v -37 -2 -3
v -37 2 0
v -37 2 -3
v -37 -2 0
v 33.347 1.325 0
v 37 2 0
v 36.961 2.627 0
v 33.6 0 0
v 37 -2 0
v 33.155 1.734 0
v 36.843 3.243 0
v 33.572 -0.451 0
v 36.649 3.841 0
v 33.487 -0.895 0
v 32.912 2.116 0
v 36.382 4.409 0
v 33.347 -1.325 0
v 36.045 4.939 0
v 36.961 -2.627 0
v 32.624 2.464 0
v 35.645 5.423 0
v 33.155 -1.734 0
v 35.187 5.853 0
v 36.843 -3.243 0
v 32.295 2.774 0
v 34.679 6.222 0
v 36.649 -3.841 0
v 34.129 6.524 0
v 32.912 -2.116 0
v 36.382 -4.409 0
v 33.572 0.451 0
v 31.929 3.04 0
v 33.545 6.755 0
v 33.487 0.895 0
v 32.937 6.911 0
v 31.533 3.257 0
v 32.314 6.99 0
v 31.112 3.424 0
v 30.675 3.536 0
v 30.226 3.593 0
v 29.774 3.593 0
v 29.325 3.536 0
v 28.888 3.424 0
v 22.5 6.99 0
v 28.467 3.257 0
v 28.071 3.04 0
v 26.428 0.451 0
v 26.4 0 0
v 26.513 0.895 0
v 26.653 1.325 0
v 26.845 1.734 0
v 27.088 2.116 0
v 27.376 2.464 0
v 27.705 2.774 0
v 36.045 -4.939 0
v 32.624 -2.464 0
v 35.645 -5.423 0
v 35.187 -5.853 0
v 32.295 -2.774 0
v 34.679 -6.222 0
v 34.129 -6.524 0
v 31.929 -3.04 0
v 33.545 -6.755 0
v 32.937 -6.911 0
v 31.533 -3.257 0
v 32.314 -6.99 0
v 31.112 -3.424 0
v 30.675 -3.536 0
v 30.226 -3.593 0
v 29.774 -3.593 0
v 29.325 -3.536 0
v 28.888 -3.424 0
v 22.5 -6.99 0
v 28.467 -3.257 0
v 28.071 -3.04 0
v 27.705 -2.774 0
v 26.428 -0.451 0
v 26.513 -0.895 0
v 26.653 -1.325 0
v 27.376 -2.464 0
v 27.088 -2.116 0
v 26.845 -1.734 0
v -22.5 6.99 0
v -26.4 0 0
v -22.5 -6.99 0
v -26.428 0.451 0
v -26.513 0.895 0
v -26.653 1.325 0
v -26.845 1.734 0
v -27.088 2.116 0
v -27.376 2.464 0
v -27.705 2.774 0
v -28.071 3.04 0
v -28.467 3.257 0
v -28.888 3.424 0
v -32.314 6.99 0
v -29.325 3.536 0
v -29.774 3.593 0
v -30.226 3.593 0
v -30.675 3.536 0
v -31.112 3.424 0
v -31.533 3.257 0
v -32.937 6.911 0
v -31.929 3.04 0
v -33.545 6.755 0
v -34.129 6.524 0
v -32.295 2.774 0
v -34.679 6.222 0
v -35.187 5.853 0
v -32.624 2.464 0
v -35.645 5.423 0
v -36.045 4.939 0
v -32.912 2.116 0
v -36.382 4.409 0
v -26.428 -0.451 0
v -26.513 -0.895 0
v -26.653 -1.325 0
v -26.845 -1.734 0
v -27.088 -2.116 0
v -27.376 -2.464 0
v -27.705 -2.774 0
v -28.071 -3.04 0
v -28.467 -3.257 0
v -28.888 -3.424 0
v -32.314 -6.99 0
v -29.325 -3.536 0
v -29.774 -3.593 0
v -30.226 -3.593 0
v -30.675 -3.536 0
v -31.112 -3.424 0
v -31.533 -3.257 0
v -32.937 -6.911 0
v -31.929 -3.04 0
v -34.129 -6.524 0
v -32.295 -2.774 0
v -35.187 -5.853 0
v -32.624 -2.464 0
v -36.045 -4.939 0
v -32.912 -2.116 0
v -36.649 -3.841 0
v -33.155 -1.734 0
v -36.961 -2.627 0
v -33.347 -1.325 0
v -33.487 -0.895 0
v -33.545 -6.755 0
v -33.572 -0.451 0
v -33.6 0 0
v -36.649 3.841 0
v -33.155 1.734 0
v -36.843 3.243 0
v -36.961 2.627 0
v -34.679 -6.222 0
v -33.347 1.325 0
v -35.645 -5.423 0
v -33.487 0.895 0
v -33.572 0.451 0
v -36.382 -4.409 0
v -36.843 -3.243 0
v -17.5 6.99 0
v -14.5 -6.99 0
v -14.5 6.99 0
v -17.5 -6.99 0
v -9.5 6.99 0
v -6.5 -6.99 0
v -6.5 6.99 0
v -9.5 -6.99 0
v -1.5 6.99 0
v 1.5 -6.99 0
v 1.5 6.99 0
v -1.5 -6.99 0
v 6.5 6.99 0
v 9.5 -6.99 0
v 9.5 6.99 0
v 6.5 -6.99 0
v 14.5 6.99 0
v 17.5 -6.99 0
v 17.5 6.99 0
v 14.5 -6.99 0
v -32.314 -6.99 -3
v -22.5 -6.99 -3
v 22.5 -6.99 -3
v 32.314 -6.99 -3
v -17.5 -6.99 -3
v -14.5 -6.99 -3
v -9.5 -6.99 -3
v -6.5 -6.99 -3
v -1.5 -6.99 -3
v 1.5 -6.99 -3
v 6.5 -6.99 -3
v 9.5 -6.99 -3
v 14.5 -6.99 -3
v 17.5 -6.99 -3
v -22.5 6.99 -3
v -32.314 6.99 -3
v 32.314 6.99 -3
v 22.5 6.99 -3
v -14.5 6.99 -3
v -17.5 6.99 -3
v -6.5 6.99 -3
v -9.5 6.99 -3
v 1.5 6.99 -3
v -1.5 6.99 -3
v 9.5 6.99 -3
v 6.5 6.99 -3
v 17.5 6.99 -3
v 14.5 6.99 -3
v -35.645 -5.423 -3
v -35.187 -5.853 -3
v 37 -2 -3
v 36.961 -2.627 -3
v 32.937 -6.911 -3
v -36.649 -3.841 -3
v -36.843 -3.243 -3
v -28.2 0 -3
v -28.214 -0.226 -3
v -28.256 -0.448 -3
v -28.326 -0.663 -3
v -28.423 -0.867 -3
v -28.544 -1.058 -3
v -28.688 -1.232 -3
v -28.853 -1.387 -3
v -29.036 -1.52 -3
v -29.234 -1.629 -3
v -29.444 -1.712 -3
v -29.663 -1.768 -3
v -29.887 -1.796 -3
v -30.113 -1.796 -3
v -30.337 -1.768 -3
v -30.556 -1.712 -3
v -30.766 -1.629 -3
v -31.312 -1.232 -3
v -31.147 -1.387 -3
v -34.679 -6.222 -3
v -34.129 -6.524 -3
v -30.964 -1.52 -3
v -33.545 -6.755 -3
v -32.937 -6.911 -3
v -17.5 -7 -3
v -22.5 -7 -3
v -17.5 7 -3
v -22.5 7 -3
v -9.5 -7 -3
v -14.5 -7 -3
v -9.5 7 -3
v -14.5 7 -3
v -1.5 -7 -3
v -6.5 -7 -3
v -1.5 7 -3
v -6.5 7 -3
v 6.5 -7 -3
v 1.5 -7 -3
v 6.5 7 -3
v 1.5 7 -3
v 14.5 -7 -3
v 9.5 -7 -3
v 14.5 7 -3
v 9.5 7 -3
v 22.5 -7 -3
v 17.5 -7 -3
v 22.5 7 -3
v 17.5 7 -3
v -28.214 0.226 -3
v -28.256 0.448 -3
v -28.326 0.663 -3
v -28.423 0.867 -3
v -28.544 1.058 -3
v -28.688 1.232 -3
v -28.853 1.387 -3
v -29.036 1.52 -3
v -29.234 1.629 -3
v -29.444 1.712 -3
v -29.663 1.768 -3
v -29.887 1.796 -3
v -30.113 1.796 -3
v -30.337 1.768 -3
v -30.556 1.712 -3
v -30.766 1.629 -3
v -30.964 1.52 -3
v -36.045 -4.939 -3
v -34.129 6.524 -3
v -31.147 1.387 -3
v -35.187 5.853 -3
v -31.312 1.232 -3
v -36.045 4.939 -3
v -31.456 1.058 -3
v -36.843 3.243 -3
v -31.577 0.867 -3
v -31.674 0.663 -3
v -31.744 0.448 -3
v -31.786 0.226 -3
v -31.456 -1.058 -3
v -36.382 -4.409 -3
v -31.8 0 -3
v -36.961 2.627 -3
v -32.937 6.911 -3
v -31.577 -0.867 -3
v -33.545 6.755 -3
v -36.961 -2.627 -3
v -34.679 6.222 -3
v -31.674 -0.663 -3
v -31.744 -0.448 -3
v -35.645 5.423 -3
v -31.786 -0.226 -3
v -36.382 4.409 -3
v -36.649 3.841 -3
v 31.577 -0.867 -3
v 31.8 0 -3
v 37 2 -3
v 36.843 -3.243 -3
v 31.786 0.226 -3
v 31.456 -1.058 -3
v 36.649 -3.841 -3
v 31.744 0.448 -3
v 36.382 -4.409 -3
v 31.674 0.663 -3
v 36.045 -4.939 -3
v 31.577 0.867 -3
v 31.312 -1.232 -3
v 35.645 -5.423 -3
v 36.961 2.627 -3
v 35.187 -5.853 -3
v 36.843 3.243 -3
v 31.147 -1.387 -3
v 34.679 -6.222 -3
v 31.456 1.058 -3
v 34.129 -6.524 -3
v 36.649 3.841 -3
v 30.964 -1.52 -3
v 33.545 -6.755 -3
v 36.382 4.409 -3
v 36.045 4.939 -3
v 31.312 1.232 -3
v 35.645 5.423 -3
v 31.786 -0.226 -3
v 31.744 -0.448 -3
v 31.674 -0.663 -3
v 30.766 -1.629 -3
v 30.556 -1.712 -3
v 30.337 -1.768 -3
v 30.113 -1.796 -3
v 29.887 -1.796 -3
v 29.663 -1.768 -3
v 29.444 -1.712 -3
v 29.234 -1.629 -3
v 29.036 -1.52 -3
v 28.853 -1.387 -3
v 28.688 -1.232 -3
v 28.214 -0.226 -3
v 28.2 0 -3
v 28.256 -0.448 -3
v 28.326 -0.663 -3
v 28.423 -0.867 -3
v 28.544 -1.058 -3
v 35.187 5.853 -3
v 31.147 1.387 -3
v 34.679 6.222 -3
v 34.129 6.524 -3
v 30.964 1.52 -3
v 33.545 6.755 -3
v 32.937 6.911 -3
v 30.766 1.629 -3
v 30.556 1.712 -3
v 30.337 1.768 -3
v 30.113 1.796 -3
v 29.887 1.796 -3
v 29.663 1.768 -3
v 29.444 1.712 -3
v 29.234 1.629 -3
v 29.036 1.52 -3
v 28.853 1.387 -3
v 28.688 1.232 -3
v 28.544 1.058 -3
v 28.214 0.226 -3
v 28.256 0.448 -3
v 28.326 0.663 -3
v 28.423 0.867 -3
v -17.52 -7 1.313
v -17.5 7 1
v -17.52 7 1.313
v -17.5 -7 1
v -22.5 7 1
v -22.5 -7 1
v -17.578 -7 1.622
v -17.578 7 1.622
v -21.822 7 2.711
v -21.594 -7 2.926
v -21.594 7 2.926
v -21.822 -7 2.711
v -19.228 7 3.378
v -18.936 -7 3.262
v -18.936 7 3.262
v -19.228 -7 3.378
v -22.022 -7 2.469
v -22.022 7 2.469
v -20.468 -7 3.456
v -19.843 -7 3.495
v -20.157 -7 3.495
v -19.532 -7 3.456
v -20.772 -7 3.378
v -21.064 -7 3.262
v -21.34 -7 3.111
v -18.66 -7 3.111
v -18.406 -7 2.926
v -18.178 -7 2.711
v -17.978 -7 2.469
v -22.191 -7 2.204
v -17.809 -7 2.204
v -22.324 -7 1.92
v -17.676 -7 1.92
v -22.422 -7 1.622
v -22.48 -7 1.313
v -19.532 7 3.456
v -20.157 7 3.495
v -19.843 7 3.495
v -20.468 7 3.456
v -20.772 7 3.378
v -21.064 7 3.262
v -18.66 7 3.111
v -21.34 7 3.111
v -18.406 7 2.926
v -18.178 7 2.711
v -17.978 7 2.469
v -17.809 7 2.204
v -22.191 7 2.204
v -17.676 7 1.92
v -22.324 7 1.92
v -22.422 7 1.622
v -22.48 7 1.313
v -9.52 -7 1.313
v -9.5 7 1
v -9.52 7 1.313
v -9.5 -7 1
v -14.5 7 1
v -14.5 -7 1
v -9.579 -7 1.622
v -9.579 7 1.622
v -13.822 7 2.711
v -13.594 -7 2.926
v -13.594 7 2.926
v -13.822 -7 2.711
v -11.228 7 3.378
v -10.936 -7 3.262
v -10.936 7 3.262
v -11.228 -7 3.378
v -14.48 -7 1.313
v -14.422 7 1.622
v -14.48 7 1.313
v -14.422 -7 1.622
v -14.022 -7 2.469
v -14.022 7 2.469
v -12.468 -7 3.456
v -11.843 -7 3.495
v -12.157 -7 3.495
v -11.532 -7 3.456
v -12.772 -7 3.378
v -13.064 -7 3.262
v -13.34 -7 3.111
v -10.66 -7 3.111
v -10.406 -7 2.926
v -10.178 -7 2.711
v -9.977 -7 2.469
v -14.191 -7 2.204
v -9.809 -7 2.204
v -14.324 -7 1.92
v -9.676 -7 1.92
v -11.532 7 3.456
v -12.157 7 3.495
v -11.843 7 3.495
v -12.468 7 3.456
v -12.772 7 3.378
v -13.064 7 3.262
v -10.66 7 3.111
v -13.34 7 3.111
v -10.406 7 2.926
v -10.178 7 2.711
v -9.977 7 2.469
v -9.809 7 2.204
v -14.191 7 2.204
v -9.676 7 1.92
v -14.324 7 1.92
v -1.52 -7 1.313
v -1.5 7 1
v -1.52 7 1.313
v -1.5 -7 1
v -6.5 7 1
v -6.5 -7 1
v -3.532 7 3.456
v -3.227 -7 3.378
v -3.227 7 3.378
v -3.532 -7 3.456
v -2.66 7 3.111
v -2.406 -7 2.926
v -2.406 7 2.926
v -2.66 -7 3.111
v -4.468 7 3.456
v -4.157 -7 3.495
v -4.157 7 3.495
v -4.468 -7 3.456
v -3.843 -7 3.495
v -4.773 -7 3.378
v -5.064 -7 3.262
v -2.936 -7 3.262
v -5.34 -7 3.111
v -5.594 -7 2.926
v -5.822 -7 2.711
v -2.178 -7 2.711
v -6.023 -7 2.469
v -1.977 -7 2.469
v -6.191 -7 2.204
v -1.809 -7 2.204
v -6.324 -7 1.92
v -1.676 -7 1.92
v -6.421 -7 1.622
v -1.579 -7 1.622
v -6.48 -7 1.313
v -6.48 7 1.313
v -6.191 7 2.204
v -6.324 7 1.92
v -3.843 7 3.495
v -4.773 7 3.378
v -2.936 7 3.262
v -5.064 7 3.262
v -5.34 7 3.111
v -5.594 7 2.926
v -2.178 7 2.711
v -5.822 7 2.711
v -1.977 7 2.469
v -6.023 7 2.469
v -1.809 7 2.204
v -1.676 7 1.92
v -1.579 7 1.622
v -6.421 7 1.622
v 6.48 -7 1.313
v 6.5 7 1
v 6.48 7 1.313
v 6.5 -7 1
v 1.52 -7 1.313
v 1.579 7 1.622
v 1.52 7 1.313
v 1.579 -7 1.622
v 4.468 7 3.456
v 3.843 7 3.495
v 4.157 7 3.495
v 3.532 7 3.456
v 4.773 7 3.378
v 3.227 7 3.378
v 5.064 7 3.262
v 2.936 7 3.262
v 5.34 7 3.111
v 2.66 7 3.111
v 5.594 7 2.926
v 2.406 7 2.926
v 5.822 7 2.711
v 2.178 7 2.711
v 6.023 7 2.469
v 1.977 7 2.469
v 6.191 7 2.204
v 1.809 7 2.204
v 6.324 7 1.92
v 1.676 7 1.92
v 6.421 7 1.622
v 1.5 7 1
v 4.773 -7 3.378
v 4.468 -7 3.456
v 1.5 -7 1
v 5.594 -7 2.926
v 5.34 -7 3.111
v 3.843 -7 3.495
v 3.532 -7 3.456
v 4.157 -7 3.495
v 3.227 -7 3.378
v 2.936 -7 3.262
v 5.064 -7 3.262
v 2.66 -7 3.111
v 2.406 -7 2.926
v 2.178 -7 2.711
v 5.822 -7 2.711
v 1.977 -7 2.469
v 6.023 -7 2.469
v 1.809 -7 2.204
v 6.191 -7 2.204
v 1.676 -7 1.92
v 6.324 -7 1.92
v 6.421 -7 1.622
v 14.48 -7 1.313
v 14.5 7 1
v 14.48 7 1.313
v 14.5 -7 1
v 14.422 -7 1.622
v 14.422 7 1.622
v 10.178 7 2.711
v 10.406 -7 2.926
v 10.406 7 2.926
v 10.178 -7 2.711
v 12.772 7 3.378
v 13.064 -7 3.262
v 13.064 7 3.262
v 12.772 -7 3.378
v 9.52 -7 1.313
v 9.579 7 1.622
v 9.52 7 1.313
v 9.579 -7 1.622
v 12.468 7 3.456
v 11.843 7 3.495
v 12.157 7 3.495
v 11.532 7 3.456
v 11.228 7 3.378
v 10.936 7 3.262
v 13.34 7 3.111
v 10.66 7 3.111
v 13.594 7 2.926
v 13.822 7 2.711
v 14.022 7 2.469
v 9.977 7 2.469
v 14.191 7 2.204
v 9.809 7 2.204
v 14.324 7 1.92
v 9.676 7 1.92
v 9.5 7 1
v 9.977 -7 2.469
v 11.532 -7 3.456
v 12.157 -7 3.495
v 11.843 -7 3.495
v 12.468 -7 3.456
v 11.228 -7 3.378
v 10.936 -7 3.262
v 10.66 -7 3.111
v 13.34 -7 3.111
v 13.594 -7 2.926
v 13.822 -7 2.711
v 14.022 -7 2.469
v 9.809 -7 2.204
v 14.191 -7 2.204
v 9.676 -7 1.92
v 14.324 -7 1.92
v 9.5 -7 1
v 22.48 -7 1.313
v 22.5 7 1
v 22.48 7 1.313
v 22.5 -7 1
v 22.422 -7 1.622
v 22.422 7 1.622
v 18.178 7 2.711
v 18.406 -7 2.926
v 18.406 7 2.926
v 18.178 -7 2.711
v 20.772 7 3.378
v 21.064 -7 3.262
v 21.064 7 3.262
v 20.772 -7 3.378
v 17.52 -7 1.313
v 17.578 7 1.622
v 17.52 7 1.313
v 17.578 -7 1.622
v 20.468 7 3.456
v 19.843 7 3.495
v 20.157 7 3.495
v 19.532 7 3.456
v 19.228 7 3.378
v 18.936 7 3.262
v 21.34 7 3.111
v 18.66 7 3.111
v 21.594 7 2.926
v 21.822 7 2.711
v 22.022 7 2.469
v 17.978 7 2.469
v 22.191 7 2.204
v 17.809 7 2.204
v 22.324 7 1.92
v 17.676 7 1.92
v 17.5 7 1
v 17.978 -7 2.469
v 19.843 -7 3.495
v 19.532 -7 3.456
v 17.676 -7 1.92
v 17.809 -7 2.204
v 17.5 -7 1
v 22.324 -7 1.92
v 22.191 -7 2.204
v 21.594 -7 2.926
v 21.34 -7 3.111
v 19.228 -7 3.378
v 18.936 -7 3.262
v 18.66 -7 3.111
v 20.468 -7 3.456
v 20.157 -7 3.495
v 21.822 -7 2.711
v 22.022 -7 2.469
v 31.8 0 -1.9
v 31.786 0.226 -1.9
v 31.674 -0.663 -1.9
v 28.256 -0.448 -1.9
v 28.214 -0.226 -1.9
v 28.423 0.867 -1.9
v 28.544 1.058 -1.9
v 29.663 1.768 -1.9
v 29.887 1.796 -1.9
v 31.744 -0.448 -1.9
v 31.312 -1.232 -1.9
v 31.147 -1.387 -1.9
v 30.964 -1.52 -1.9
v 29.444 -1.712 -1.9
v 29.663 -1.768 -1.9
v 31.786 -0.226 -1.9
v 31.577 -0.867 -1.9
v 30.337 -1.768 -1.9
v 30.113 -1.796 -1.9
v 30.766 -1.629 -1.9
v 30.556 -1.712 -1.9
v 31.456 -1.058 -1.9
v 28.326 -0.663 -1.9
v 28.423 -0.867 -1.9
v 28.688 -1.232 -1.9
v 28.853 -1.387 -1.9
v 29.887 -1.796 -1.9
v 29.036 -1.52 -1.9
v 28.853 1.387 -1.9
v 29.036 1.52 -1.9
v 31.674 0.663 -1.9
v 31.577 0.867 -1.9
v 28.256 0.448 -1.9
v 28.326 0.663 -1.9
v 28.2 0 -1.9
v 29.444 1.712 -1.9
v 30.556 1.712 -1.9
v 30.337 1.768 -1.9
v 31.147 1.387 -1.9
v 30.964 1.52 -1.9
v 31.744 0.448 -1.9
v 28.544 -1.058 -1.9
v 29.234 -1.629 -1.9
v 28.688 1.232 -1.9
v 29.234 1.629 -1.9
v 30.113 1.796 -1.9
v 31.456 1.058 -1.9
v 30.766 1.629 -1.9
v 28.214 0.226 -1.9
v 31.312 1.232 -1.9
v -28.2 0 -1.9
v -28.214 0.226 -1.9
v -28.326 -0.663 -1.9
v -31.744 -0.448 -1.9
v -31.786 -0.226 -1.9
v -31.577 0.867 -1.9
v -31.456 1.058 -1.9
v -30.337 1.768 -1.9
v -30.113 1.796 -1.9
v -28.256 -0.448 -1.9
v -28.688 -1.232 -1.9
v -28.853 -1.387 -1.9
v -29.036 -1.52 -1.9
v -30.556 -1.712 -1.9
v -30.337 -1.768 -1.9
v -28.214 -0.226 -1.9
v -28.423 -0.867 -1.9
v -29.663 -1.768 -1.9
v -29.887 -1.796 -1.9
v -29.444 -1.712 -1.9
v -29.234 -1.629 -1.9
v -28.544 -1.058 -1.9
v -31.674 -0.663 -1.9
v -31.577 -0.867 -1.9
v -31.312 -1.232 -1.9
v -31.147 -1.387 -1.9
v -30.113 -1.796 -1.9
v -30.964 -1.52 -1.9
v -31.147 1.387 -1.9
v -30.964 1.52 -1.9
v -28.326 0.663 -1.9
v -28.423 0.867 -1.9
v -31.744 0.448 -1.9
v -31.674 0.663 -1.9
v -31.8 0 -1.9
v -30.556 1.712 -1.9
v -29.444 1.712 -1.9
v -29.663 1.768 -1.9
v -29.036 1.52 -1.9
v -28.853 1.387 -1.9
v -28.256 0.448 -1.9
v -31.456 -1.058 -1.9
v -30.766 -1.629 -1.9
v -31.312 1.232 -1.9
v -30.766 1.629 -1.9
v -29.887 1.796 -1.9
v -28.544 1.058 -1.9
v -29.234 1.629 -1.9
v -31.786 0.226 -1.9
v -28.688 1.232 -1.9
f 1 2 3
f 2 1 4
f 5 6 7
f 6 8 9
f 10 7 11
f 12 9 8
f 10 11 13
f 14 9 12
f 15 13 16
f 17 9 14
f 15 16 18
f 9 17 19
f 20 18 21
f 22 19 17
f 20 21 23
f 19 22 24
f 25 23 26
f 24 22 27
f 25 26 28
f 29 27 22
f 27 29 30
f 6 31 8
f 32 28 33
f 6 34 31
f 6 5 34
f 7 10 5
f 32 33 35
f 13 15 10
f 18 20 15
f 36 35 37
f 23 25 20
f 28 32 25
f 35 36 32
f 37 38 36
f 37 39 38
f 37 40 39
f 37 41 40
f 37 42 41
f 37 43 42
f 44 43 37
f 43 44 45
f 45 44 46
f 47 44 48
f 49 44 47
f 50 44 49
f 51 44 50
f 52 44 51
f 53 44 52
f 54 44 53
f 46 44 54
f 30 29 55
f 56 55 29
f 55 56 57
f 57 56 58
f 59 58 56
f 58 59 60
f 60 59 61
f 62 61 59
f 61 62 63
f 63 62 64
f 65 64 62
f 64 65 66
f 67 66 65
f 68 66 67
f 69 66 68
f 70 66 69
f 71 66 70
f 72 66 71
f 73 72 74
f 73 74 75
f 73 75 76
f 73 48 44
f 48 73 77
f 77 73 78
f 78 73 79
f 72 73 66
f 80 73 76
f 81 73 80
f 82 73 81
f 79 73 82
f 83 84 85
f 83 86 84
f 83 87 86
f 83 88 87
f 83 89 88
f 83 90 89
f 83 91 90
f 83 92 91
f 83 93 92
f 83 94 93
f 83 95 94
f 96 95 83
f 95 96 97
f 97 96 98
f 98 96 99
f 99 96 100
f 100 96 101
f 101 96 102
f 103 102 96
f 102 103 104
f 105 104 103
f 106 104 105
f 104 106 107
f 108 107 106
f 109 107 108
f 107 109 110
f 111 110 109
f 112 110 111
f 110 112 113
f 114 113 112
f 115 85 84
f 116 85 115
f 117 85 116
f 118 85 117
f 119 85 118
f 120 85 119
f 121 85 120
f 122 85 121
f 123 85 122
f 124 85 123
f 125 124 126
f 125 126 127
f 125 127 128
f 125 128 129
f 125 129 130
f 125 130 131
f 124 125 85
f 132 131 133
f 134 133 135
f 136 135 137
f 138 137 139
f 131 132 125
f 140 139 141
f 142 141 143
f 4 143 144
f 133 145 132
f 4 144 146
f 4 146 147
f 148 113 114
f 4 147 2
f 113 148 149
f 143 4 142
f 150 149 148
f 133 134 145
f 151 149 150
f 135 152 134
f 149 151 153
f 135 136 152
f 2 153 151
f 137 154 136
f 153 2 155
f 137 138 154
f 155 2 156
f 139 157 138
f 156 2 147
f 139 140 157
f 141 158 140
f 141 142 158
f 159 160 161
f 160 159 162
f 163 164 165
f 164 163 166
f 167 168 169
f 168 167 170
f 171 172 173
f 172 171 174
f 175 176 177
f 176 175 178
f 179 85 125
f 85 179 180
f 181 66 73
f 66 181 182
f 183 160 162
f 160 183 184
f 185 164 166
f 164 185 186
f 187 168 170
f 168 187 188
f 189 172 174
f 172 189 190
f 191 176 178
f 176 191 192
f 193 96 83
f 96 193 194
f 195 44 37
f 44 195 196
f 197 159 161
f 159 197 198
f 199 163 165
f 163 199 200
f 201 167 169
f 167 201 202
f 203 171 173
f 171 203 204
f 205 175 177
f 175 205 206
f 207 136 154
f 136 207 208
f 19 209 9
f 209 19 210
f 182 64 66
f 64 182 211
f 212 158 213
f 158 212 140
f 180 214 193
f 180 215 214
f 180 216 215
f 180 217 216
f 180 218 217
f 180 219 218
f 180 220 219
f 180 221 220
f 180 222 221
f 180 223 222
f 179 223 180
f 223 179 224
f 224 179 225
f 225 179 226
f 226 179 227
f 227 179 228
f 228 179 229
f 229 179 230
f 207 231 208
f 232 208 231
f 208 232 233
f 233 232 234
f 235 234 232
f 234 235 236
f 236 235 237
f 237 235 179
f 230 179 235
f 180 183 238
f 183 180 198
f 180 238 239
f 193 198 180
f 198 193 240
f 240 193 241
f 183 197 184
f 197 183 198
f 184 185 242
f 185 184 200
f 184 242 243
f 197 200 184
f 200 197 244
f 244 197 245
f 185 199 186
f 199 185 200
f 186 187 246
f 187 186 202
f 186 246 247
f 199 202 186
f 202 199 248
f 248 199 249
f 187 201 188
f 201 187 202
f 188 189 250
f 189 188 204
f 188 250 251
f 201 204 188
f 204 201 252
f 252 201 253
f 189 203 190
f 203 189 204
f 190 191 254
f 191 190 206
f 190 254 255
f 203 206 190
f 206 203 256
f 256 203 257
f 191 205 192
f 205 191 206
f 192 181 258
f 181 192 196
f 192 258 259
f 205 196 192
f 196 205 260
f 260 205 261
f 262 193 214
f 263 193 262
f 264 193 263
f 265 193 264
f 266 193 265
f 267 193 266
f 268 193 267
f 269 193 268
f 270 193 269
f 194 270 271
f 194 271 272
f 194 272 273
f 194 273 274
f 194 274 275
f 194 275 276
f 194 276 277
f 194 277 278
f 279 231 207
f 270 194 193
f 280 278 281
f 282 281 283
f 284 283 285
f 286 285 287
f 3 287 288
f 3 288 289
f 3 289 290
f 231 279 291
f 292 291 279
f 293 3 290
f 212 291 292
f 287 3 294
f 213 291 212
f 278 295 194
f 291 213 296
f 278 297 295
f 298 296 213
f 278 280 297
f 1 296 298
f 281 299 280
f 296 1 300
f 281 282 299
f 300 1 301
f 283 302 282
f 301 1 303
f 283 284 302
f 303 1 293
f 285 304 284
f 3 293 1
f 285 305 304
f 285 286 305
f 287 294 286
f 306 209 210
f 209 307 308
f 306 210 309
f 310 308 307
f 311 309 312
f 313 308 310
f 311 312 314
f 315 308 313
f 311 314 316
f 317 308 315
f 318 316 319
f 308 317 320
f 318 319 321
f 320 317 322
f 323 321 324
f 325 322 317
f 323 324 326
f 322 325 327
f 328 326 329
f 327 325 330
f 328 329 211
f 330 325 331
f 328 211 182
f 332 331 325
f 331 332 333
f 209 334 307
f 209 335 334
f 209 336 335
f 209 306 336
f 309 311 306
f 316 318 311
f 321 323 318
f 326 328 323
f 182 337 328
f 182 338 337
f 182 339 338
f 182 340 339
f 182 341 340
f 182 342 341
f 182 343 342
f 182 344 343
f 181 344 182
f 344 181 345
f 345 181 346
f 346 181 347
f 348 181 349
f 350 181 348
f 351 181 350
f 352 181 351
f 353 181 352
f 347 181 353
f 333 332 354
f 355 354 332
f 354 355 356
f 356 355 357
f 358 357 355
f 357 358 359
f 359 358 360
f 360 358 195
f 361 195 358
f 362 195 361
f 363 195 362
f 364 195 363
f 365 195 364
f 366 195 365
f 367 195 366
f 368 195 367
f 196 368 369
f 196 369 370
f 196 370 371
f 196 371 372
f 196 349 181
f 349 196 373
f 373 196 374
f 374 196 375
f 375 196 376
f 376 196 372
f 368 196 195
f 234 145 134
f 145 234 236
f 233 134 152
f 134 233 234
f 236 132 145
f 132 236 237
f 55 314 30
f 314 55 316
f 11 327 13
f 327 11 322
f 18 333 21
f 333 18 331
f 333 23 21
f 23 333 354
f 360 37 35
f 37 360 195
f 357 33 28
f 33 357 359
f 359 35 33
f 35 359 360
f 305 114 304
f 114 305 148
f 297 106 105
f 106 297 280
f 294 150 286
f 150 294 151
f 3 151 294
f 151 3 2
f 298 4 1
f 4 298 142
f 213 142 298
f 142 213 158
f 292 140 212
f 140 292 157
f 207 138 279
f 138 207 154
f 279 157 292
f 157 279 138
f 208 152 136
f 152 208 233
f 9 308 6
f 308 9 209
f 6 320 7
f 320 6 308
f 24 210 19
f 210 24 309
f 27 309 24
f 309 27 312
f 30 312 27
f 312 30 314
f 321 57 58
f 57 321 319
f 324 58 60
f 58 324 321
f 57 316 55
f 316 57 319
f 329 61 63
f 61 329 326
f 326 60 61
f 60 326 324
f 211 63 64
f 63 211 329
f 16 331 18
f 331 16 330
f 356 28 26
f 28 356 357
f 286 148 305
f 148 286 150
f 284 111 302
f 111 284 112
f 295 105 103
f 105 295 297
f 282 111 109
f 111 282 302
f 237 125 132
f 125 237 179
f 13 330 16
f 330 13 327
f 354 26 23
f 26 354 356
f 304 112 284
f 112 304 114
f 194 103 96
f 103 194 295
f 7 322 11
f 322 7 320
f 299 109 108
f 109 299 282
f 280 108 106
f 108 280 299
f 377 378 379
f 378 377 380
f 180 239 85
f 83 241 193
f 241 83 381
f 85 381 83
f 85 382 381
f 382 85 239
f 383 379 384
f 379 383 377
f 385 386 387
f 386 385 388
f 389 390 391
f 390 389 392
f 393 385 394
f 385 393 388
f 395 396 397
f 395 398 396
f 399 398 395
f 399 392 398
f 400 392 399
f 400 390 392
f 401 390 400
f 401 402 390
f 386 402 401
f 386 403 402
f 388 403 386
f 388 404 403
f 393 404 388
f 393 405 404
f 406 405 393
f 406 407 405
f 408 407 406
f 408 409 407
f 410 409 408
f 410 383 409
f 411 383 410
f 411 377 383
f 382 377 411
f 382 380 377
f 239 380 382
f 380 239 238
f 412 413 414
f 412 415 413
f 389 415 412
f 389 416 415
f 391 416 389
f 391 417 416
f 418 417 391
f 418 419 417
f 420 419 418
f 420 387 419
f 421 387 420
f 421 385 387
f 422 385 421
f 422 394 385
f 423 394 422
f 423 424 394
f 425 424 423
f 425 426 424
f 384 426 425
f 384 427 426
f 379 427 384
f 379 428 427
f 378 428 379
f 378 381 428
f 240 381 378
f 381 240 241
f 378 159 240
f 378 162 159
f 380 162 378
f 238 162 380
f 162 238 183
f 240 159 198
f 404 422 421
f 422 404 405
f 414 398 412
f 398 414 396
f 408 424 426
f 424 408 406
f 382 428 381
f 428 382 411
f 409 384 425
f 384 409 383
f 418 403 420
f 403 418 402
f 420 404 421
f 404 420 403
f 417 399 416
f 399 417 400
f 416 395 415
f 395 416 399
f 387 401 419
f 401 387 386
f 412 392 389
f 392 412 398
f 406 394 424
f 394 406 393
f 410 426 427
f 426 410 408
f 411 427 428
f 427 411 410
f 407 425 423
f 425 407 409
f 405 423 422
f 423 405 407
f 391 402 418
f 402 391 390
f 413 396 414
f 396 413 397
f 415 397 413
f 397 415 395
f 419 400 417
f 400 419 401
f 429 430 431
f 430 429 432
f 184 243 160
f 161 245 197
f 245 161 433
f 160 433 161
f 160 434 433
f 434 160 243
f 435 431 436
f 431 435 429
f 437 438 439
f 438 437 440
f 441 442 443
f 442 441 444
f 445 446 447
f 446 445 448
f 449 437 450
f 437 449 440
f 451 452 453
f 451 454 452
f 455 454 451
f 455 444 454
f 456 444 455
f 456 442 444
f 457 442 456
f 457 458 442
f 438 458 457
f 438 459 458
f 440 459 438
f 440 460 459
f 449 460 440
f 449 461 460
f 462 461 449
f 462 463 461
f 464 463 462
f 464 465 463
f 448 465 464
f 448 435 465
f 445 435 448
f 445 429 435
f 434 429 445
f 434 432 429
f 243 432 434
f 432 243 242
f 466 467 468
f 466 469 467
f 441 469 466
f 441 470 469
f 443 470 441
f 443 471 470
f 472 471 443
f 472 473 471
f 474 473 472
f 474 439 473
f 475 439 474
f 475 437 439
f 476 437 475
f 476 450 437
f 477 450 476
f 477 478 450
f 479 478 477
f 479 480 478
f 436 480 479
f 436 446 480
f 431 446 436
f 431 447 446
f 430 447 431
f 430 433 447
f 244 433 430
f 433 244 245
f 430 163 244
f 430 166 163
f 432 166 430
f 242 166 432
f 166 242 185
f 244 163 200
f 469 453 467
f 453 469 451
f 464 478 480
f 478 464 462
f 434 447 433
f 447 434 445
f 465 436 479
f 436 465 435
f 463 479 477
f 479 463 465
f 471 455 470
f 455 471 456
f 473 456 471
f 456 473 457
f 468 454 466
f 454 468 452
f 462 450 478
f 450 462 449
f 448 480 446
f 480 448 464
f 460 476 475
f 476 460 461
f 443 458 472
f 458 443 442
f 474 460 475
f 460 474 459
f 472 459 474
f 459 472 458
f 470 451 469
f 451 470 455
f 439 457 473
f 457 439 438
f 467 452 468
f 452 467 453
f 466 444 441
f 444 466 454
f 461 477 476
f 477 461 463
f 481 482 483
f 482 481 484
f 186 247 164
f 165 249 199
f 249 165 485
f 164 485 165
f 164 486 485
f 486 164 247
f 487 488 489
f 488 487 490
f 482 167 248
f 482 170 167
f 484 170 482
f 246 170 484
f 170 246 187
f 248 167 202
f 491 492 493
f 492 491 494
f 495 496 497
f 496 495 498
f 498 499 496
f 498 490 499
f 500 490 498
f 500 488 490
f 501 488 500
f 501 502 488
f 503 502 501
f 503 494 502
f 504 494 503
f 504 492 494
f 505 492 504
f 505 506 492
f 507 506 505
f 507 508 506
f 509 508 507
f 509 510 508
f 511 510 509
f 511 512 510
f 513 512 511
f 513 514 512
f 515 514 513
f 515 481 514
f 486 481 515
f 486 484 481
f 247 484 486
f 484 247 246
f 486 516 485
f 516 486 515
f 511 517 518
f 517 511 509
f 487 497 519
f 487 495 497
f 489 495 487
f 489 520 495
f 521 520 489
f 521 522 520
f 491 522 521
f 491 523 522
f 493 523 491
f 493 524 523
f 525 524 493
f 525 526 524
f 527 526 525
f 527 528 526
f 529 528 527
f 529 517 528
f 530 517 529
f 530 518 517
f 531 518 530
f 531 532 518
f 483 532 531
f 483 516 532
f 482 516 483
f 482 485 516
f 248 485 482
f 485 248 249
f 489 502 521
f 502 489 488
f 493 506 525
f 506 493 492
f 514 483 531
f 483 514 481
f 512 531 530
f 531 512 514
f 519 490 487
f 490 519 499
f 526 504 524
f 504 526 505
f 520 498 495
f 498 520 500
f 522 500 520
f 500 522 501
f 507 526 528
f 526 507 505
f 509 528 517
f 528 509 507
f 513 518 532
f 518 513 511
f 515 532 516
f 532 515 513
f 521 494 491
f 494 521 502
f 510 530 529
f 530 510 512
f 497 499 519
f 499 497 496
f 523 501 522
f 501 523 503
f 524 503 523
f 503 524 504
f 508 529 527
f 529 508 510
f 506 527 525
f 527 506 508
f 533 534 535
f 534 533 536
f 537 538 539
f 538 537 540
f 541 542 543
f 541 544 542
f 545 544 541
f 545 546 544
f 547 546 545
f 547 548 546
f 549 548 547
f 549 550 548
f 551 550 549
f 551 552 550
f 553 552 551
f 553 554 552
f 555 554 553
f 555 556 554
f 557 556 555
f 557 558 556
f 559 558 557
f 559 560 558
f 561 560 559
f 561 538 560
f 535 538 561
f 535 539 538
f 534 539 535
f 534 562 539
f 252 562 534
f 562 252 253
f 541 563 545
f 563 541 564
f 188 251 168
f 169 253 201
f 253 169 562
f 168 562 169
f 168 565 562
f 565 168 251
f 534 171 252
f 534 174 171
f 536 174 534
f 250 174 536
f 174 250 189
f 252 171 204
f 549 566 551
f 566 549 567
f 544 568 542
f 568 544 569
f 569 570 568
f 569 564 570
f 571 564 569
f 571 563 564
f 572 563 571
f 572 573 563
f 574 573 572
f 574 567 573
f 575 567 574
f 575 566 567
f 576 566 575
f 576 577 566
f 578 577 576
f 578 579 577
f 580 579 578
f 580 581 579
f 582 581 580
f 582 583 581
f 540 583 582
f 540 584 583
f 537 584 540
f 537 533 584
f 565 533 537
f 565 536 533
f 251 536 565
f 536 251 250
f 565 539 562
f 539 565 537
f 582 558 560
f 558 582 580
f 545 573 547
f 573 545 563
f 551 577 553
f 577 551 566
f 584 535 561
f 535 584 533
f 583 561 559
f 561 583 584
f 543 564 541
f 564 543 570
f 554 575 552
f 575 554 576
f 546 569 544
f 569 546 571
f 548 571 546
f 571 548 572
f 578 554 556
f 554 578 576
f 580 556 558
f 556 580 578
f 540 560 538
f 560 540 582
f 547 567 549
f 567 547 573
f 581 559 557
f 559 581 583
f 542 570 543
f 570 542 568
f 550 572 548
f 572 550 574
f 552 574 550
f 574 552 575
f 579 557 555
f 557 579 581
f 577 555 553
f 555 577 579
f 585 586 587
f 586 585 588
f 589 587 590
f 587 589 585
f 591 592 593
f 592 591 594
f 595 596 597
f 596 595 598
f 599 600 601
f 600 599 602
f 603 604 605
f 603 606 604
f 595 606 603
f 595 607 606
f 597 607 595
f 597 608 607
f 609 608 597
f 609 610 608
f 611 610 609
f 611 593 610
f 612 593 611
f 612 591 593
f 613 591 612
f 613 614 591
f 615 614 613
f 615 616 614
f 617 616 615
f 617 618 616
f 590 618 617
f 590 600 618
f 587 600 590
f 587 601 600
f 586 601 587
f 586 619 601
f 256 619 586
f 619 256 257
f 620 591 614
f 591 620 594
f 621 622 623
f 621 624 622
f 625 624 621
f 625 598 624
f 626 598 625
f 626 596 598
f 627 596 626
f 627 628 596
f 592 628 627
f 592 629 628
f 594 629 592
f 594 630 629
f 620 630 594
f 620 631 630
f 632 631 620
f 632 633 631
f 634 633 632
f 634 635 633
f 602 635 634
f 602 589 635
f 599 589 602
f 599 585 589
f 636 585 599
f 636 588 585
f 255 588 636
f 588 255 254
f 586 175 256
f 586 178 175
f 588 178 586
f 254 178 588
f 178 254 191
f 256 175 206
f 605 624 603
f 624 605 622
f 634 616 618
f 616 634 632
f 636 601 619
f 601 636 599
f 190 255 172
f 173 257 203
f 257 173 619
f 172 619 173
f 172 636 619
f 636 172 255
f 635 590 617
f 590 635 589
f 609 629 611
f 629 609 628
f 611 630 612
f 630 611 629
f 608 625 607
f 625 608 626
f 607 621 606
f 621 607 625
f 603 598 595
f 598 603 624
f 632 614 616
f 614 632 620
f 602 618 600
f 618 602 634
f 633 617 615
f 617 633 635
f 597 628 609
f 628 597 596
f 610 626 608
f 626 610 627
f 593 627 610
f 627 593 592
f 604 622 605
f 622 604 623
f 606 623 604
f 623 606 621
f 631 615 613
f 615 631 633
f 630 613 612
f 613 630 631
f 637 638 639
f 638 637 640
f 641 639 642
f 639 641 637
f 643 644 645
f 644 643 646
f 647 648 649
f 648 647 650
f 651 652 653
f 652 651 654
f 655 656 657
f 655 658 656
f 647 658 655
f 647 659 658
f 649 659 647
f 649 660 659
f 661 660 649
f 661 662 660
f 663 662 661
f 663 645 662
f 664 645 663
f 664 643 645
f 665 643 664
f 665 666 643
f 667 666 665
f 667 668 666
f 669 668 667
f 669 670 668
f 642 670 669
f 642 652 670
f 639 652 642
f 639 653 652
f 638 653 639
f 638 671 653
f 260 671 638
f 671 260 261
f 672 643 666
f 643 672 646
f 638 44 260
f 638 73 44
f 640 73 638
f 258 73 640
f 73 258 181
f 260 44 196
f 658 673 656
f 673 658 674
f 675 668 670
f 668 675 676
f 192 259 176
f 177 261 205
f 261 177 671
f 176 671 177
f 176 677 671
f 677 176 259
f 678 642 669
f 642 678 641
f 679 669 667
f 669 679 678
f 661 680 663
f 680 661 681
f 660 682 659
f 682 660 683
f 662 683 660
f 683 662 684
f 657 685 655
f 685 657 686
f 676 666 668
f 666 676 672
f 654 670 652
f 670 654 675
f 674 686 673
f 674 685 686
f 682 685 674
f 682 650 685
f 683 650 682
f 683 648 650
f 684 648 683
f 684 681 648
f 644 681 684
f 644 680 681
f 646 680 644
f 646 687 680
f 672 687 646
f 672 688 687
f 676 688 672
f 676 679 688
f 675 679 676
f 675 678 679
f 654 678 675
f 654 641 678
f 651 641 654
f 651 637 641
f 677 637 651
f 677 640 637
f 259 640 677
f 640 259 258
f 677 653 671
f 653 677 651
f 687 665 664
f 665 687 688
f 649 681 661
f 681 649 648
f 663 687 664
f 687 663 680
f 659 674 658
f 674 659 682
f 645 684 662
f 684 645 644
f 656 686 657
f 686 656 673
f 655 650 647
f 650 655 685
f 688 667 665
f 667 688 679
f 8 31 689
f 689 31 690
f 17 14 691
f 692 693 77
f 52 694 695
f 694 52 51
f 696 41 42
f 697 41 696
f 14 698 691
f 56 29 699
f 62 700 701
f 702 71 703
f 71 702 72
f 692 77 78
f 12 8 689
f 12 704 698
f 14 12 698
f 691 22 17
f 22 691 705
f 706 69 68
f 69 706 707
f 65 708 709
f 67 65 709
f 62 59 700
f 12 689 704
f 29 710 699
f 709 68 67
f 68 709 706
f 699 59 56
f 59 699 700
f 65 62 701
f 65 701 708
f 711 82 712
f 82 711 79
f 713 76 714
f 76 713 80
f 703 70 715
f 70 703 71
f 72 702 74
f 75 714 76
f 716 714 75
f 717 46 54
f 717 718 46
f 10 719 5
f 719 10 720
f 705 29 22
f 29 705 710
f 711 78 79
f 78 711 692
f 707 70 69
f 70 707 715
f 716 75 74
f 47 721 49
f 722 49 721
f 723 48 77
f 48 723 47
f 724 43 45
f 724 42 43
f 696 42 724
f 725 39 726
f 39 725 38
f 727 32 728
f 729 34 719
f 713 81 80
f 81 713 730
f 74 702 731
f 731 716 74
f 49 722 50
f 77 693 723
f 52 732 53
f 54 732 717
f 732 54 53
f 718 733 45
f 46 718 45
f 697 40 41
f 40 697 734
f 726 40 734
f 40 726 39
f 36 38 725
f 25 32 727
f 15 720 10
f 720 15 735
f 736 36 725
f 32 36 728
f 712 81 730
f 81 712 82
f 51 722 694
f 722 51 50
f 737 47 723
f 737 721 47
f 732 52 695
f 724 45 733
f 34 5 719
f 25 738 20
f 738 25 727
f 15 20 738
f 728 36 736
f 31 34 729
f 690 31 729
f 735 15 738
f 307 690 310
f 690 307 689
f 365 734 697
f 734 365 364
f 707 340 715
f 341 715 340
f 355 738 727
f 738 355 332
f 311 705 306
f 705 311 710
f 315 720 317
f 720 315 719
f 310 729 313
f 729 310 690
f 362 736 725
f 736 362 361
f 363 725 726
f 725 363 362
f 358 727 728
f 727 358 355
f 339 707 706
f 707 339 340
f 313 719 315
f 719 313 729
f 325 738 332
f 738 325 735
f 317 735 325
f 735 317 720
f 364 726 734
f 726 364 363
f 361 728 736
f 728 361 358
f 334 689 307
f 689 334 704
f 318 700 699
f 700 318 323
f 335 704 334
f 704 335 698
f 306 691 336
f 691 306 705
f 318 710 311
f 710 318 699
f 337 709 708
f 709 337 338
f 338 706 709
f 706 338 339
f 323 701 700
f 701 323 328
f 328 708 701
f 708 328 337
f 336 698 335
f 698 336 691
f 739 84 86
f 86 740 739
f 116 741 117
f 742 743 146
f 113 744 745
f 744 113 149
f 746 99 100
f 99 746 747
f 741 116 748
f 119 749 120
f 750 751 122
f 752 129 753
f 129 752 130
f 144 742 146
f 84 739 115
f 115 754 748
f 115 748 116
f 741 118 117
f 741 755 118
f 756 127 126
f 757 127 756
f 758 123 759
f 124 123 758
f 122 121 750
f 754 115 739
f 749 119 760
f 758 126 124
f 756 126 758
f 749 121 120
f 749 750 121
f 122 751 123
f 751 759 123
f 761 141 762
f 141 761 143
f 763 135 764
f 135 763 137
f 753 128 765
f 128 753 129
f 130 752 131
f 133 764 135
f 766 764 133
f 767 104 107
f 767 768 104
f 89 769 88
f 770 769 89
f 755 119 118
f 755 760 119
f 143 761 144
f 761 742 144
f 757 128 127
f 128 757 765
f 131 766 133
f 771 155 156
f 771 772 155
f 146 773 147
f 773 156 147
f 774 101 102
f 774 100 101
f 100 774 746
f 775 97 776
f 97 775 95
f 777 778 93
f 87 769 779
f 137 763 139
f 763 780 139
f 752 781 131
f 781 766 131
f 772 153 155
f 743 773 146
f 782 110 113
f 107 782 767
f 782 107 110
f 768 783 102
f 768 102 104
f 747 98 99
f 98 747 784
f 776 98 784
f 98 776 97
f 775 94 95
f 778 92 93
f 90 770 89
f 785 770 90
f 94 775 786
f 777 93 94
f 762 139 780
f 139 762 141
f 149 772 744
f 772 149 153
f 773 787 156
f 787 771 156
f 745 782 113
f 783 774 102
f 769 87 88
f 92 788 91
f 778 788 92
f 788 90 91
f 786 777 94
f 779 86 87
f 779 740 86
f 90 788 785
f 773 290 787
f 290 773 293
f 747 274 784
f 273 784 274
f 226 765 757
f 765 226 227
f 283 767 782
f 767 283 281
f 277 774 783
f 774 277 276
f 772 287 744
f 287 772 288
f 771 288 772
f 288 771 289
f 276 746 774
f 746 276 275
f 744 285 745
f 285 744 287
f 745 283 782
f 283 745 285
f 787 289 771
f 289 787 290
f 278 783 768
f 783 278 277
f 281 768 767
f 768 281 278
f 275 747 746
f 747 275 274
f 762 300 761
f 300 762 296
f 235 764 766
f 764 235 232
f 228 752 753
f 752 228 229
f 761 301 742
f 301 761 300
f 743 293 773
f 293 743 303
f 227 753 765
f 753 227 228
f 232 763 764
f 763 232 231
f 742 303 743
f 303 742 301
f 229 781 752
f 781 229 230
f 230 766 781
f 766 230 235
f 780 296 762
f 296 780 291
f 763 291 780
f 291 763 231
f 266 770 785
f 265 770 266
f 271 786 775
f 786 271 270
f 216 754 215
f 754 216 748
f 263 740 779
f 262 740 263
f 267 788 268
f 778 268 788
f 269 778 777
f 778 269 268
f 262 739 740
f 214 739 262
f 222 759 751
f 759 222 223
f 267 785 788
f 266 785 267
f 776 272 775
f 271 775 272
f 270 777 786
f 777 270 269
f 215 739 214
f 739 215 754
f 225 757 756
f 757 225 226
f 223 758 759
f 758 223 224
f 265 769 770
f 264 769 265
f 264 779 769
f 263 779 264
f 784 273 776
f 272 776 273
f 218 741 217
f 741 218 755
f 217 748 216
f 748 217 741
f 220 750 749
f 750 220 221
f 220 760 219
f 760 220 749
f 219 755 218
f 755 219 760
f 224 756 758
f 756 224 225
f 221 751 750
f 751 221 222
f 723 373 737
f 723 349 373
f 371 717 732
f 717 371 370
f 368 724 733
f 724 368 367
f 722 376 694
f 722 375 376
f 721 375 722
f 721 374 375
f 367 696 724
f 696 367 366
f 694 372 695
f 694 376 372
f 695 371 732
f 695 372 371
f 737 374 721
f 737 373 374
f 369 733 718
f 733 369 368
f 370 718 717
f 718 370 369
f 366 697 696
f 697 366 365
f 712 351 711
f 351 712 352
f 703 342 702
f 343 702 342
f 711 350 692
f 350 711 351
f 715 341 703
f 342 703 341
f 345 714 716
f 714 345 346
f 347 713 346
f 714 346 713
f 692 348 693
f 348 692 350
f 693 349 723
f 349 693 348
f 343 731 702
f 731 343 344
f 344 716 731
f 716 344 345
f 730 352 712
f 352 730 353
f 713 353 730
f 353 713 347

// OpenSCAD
$fn = 50;


difference() {
	union() {
		translate(v = [0, 0, -3]) {
			hull() {
				translate(v = [-32.0000000000, 2.0000000000, 0]) {
					cylinder(h = 3, r = 5);
				}
				translate(v = [32.0000000000, 2.0000000000, 0]) {
					cylinder(h = 3, r = 5);
				}
				translate(v = [-32.0000000000, -2.0000000000, 0]) {
					cylinder(h = 3, r = 5);
				}
				translate(v = [32.0000000000, -2.0000000000, 0]) {
					cylinder(h = 3, r = 5);
				}
			}
		}
		translate(v = [-20.0000000000, 7.0000000000, -1.5000000000]) {
			rotate(a = [90, 0, 0]) {
				hull() {
					translate(v = [-0.0000000000, 2.5000000000, 0]) {
						cylinder(h = 14, r = 2.5000000000);
					}
					translate(v = [0.0000000000, 2.5000000000, 0]) {
						cylinder(h = 14, r = 2.5000000000);
					}
					translate(v = [-0.0000000000, -2.5000000000, 0]) {
						cylinder(h = 14, r = 2.5000000000);
					}
					translate(v = [0.0000000000, -2.5000000000, 0]) {
						cylinder(h = 14, r = 2.5000000000);
					}
				}
			}
		}
		translate(v = [-12.0000000000, 7.0000000000, -1.5000000000]) {
			rotate(a = [90, 0, 0]) {
				hull() {
					translate(v = [-0.0000000000, 2.5000000000, 0]) {
						cylinder(h = 14, r = 2.5000000000);
					}
					translate(v = [0.0000000000, 2.5000000000, 0]) {
						cylinder(h = 14, r = 2.5000000000);
					}
					translate(v = [-0.0000000000, -2.5000000000, 0]) {
						cylinder(h = 14, r = 2.5000000000);
					}
					translate(v = [0.0000000000, -2.5000000000, 0]) {
						cylinder(h = 14, r = 2.5000000000);
					}
				}
			}
		}
		translate(v = [-4.0000000000, 7.0000000000, -1.5000000000]) {
			rotate(a = [90, 0, 0]) {
				hull() {
					translate(v = [-0.0000000000, 2.5000000000, 0]) {
						cylinder(h = 14, r = 2.5000000000);
					}
					translate(v = [0.0000000000, 2.5000000000, 0]) {
						cylinder(h = 14, r = 2.5000000000);
					}
					translate(v = [-0.0000000000, -2.5000000000, 0]) {
						cylinder(h = 14, r = 2.5000000000);
					}
					translate(v = [0.0000000000, -2.5000000000, 0]) {
						cylinder(h = 14, r = 2.5000000000);
					}
				}
			}
		}
		translate(v = [4.0000000000, 7.0000000000, -1.5000000000]) {
			rotate(a = [90, 0, 0]) {
				hull() {
					translate(v = [-0.0000000000, 2.5000000000, 0]) {
						cylinder(h = 14, r = 2.5000000000);
					}
					translate(v = [0.0000000000, 2.5000000000, 0]) {
						cylinder(h = 14, r = 2.5000000000);
					}
					translate(v = [-0.0000000000, -2.5000000000, 0]) {
						cylinder(h = 14, r = 2.5000000000);
					}
					translate(v = [0.0000000000, -2.5000000000, 0]) {
						cylinder(h = 14, r = 2.5000000000);
					}
				}
			}
		}
		translate(v = [12.0000000000, 7.0000000000, -1.5000000000]) {
			rotate(a = [90, 0, 0]) {
				hull() {
					translate(v = [-0.0000000000, 2.5000000000, 0]) {
						cylinder(h = 14, r = 2.5000000000);
					}
					translate(v = [0.0000000000, 2.5000000000, 0]) {
						cylinder(h = 14, r = 2.5000000000);
					}
					translate(v = [-0.0000000000, -2.5000000000, 0]) {
						cylinder(h = 14, r = 2.5000000000);
					}
					translate(v = [0.0000000000, -2.5000000000, 0]) {
						cylinder(h = 14, r = 2.5000000000);
					}
				}
			}
		}
		translate(v = [20.0000000000, 7.0000000000, -1.5000000000]) {
			rotate(a = [90, 0, 0]) {
				hull() {
					translate(v = [-0.0000000000, 2.5000000000, 0]) {
						cylinder(h = 14, r = 2.5000000000);
					}
					translate(v = [0.0000000000, 2.5000000000, 0]) {
						cylinder(h = 14, r = 2.5000000000);
					}
					translate(v = [-0.0000000000, -2.5000000000, 0]) {
						cylinder(h = 14, r = 2.5000000000);
					}
					translate(v = [0.0000000000, -2.5000000000, 0]) {
						cylinder(h = 14, r = 2.5000000000);
					}
				}
			}
		}
	}
	union() {
		translate(v = [30.0000000000, 0.0000000000, 0]) {
			rotate(a = [0, 0, 0]) {
				difference() {
					union() {
						translate(v = [0, 0, -3.0000000000]) {
							cylinder(h = 3, r = 1.5000000000);
						}
						translate(v = [0, 0, -1.9000000000]) {
							cylinder(h = 1.9000000000, r1 = 1.8000000000, r2 = 3.6000000000);
						}
						translate(v = [0, 0, -3.0000000000]) {
							cylinder(h = 3, r = 1.8000000000);
						}
						translate(v = [0, 0, -3.0000000000]) {
							cylinder(h = 3, r = 1.5000000000);
						}
					}
					union();
				}
			}
		}
		translate(v = [-30.0000000000, 0.0000000000, 0]) {
			rotate(a = [0, 0, 0]) {
				difference() {
					union() {
						translate(v = [0, 0, -3.0000000000]) {
							cylinder(h = 3, r = 1.5000000000);
						}
						translate(v = [0, 0, -1.9000000000]) {
							cylinder(h = 1.9000000000, r1 = 1.8000000000, r2 = 3.6000000000);
						}
						translate(v = [0, 0, -3.0000000000]) {
							cylinder(h = 3, r = 1.8000000000);
						}
						translate(v = [0, 0, -3.0000000000]) {
							cylinder(h = 3, r = 1.5000000000);
						}
					}
					union();
				}
			}
		}
		translate(v = [-250.0000000000, -250.0000000000, -503]) {
			cube(size = [500, 500, 500]);
		}
		translate(v = [-250.0000000000, -250.0000000000, -503]) {
			cube(size = [500, 500, 500]);
		}
		translate(v = [-250.0000000000, -250.0000000000, -503]) {
			cube(size = [500, 500, 500]);
		}
		translate(v = [-30.0000000000, 0.0000000000, -100.0000000000]) {
			cylinder(h = 200, r = 1.8000000000);
		}
		translate(v = [30.0000000000, 0.0000000000, -100.0000000000]) {
			cylinder(h = 200, r = 1.8000000000);
		}
		translate(v = [30.0000000000, 0.0000000000, -100.0000000000]) {
			cylinder(h = 200, r = 1.8000000000);
		}
		translate(v = [-30.0000000000, 0.0000000000, -100.0000000000]) {
			cylinder(h = 200, r = 1.8000000000);
		}
		translate(v = [30.0000000000, 0.0000000000, -100.0000000000]) {
			cylinder(h = 200, r = 1.8000000000);
		}
		translate(v = [-30.0000000000, 0.0000000000, -100.0000000000]) {
			cylinder(h = 200, r = 1.8000000000);
		}
		translate(v = [30.0000000000, 0.0000000000, -100.0000000000]) {
			cylinder(h = 200, r = 1.8000000000);
		}
		translate(v = [-30.0000000000, 0.0000000000, -100.0000000000]) {
			cylinder(h = 200, r = 1.8000000000);
		}
		translate(v = [30.0000000000, 0.0000000000, -100.0000000000]) {
			cylinder(h = 200, r = 1.8000000000);
		}
	}
}
